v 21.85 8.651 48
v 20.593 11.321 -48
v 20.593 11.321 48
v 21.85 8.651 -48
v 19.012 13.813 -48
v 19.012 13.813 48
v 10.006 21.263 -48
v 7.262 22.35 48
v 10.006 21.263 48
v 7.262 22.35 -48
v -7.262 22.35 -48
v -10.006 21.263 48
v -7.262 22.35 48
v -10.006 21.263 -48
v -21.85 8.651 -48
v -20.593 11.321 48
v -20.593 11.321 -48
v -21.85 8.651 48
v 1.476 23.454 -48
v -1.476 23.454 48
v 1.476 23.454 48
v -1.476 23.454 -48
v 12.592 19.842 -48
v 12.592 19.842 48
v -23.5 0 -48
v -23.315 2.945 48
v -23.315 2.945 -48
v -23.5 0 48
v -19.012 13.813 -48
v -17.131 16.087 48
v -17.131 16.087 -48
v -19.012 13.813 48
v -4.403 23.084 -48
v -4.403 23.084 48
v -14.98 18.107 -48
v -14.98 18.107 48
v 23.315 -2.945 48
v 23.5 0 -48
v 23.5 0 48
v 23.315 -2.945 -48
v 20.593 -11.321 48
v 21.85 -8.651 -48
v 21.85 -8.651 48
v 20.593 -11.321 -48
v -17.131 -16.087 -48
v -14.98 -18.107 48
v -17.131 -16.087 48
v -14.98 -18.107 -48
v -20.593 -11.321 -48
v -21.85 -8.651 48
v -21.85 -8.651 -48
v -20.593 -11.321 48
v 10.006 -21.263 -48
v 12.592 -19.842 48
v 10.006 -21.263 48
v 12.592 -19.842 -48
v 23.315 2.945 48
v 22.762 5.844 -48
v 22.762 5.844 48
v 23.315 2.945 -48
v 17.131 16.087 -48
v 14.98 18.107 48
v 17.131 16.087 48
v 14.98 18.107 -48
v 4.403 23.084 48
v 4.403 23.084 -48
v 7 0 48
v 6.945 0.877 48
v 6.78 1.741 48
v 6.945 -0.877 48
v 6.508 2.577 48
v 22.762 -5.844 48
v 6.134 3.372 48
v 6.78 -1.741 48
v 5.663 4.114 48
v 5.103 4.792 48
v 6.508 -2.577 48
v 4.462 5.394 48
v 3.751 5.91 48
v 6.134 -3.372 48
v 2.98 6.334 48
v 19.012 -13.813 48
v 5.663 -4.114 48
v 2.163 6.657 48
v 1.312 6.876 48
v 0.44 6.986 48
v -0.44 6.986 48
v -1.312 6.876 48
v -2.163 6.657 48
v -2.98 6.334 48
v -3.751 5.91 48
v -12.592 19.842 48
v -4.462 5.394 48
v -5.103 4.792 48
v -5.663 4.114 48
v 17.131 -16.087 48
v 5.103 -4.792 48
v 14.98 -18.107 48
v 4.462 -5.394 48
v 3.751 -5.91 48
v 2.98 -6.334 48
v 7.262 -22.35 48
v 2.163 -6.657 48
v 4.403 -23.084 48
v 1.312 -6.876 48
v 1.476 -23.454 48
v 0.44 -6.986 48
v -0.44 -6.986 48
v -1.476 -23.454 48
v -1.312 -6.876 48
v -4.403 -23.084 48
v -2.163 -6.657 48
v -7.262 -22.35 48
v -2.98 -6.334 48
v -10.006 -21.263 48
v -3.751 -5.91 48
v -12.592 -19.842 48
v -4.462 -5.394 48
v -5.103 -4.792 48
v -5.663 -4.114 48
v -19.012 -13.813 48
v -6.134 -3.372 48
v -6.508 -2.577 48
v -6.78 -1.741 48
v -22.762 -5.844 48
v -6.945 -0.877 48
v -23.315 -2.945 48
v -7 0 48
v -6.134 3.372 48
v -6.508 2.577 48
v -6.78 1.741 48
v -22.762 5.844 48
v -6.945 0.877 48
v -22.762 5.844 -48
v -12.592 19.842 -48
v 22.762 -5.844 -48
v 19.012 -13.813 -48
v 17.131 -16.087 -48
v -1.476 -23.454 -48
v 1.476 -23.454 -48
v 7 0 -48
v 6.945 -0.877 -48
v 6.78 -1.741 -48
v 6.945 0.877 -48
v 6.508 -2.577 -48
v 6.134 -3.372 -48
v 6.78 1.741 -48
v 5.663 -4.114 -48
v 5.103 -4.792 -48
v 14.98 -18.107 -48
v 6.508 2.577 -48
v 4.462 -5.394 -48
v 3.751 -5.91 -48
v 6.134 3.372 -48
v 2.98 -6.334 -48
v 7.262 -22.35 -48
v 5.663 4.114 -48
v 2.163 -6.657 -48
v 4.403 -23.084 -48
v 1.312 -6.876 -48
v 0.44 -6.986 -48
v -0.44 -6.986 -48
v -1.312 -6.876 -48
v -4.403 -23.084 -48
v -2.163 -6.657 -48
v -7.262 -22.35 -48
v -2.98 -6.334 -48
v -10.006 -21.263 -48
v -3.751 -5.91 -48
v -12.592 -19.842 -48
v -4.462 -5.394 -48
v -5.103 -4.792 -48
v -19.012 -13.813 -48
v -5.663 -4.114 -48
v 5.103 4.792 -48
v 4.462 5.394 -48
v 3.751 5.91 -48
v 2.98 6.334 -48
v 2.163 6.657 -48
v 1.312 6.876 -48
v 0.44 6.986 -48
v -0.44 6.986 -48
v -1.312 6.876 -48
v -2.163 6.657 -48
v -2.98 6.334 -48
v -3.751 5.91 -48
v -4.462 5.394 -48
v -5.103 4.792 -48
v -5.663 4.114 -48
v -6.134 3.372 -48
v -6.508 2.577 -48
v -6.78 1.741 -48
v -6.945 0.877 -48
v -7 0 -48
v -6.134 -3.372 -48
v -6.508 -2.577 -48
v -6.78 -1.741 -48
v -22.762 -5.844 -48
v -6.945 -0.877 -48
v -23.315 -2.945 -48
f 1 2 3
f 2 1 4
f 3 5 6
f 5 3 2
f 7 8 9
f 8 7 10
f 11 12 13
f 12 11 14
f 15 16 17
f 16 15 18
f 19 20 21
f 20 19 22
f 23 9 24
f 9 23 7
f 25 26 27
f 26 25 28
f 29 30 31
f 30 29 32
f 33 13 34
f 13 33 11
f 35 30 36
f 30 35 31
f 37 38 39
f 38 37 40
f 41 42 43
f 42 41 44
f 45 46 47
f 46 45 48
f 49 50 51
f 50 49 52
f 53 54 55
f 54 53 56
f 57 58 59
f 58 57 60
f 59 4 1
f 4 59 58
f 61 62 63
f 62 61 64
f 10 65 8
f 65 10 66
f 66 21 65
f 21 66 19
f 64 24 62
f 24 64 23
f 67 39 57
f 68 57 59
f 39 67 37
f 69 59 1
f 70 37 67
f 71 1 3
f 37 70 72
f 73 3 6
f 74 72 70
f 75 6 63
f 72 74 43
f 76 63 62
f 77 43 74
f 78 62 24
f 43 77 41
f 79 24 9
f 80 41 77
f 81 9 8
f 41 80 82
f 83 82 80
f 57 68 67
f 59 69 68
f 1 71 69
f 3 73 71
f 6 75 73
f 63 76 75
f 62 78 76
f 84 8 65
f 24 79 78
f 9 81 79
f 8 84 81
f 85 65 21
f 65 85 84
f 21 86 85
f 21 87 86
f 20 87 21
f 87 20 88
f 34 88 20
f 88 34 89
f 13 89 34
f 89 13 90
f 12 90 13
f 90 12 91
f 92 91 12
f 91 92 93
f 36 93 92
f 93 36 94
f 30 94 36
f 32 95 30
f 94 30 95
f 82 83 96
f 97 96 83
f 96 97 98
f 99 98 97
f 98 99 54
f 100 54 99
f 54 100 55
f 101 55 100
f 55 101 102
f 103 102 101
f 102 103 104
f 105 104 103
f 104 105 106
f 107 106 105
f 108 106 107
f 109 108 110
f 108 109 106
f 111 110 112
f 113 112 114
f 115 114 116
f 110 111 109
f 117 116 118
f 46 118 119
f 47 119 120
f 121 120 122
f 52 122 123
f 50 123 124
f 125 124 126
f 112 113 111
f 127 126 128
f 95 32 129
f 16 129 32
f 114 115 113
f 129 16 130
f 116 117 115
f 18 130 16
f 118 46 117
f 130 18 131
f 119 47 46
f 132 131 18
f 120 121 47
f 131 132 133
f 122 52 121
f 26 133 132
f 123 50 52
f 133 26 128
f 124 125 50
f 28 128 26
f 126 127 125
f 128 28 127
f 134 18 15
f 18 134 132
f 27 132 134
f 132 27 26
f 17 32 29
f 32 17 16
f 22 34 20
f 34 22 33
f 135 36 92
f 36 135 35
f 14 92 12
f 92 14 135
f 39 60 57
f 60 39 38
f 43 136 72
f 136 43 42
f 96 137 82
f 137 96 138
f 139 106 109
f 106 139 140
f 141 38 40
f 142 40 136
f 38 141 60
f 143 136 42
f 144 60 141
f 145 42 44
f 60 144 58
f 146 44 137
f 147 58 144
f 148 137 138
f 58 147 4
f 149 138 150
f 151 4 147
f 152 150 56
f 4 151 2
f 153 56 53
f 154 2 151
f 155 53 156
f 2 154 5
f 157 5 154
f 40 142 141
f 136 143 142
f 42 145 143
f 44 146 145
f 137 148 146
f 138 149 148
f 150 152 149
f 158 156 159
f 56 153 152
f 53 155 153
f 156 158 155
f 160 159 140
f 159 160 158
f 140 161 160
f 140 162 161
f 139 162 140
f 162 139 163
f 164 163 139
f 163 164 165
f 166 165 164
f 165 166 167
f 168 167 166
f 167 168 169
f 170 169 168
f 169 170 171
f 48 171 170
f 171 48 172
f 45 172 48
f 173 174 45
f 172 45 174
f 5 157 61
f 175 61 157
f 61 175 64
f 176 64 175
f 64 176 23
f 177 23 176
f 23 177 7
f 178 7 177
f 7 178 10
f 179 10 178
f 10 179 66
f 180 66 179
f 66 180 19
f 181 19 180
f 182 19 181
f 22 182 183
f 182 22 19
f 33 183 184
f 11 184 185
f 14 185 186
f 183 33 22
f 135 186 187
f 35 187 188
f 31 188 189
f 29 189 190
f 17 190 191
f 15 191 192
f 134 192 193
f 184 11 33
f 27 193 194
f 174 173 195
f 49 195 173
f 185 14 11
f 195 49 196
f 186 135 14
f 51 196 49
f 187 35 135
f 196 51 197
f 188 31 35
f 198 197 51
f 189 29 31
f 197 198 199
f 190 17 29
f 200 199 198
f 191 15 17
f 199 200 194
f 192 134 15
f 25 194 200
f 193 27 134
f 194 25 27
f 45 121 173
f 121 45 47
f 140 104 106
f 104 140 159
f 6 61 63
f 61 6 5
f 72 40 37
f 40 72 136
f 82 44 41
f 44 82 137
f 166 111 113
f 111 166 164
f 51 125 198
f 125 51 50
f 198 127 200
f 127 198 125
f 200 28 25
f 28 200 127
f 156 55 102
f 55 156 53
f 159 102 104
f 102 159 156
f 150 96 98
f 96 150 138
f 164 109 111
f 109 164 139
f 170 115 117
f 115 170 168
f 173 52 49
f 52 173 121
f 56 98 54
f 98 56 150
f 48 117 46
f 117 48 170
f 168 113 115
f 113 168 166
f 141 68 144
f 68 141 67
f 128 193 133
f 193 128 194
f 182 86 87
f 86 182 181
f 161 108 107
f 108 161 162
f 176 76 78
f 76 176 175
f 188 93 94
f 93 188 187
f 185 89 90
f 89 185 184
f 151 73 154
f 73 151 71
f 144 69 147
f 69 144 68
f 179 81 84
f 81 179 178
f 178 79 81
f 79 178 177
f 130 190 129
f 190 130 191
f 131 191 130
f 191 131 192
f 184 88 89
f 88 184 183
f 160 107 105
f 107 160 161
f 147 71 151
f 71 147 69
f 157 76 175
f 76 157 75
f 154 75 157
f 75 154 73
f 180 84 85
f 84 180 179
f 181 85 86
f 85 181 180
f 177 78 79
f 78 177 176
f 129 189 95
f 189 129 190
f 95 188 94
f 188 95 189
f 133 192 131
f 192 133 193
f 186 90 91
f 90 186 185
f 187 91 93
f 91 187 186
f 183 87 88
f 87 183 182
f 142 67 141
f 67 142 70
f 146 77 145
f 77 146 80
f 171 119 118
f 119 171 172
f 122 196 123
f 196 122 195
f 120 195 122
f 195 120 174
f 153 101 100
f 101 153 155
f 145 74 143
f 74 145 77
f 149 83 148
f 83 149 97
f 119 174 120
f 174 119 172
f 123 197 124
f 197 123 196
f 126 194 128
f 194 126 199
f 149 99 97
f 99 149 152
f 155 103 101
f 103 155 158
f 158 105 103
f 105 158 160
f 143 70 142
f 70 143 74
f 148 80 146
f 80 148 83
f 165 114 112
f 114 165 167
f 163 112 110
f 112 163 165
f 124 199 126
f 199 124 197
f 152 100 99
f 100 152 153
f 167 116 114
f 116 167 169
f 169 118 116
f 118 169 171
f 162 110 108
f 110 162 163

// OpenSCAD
$fn = 50;


difference() {
	union() {
		translate(v = [0, 0, -48.0000000000]) {
			cylinder(h = 96, r = 23.5000000000);
		}
	}
	union() {
		translate(v = [0, 0, -100.0000000000]) {
			cylinder(h = 200, r = 7);
		}
	}
}
